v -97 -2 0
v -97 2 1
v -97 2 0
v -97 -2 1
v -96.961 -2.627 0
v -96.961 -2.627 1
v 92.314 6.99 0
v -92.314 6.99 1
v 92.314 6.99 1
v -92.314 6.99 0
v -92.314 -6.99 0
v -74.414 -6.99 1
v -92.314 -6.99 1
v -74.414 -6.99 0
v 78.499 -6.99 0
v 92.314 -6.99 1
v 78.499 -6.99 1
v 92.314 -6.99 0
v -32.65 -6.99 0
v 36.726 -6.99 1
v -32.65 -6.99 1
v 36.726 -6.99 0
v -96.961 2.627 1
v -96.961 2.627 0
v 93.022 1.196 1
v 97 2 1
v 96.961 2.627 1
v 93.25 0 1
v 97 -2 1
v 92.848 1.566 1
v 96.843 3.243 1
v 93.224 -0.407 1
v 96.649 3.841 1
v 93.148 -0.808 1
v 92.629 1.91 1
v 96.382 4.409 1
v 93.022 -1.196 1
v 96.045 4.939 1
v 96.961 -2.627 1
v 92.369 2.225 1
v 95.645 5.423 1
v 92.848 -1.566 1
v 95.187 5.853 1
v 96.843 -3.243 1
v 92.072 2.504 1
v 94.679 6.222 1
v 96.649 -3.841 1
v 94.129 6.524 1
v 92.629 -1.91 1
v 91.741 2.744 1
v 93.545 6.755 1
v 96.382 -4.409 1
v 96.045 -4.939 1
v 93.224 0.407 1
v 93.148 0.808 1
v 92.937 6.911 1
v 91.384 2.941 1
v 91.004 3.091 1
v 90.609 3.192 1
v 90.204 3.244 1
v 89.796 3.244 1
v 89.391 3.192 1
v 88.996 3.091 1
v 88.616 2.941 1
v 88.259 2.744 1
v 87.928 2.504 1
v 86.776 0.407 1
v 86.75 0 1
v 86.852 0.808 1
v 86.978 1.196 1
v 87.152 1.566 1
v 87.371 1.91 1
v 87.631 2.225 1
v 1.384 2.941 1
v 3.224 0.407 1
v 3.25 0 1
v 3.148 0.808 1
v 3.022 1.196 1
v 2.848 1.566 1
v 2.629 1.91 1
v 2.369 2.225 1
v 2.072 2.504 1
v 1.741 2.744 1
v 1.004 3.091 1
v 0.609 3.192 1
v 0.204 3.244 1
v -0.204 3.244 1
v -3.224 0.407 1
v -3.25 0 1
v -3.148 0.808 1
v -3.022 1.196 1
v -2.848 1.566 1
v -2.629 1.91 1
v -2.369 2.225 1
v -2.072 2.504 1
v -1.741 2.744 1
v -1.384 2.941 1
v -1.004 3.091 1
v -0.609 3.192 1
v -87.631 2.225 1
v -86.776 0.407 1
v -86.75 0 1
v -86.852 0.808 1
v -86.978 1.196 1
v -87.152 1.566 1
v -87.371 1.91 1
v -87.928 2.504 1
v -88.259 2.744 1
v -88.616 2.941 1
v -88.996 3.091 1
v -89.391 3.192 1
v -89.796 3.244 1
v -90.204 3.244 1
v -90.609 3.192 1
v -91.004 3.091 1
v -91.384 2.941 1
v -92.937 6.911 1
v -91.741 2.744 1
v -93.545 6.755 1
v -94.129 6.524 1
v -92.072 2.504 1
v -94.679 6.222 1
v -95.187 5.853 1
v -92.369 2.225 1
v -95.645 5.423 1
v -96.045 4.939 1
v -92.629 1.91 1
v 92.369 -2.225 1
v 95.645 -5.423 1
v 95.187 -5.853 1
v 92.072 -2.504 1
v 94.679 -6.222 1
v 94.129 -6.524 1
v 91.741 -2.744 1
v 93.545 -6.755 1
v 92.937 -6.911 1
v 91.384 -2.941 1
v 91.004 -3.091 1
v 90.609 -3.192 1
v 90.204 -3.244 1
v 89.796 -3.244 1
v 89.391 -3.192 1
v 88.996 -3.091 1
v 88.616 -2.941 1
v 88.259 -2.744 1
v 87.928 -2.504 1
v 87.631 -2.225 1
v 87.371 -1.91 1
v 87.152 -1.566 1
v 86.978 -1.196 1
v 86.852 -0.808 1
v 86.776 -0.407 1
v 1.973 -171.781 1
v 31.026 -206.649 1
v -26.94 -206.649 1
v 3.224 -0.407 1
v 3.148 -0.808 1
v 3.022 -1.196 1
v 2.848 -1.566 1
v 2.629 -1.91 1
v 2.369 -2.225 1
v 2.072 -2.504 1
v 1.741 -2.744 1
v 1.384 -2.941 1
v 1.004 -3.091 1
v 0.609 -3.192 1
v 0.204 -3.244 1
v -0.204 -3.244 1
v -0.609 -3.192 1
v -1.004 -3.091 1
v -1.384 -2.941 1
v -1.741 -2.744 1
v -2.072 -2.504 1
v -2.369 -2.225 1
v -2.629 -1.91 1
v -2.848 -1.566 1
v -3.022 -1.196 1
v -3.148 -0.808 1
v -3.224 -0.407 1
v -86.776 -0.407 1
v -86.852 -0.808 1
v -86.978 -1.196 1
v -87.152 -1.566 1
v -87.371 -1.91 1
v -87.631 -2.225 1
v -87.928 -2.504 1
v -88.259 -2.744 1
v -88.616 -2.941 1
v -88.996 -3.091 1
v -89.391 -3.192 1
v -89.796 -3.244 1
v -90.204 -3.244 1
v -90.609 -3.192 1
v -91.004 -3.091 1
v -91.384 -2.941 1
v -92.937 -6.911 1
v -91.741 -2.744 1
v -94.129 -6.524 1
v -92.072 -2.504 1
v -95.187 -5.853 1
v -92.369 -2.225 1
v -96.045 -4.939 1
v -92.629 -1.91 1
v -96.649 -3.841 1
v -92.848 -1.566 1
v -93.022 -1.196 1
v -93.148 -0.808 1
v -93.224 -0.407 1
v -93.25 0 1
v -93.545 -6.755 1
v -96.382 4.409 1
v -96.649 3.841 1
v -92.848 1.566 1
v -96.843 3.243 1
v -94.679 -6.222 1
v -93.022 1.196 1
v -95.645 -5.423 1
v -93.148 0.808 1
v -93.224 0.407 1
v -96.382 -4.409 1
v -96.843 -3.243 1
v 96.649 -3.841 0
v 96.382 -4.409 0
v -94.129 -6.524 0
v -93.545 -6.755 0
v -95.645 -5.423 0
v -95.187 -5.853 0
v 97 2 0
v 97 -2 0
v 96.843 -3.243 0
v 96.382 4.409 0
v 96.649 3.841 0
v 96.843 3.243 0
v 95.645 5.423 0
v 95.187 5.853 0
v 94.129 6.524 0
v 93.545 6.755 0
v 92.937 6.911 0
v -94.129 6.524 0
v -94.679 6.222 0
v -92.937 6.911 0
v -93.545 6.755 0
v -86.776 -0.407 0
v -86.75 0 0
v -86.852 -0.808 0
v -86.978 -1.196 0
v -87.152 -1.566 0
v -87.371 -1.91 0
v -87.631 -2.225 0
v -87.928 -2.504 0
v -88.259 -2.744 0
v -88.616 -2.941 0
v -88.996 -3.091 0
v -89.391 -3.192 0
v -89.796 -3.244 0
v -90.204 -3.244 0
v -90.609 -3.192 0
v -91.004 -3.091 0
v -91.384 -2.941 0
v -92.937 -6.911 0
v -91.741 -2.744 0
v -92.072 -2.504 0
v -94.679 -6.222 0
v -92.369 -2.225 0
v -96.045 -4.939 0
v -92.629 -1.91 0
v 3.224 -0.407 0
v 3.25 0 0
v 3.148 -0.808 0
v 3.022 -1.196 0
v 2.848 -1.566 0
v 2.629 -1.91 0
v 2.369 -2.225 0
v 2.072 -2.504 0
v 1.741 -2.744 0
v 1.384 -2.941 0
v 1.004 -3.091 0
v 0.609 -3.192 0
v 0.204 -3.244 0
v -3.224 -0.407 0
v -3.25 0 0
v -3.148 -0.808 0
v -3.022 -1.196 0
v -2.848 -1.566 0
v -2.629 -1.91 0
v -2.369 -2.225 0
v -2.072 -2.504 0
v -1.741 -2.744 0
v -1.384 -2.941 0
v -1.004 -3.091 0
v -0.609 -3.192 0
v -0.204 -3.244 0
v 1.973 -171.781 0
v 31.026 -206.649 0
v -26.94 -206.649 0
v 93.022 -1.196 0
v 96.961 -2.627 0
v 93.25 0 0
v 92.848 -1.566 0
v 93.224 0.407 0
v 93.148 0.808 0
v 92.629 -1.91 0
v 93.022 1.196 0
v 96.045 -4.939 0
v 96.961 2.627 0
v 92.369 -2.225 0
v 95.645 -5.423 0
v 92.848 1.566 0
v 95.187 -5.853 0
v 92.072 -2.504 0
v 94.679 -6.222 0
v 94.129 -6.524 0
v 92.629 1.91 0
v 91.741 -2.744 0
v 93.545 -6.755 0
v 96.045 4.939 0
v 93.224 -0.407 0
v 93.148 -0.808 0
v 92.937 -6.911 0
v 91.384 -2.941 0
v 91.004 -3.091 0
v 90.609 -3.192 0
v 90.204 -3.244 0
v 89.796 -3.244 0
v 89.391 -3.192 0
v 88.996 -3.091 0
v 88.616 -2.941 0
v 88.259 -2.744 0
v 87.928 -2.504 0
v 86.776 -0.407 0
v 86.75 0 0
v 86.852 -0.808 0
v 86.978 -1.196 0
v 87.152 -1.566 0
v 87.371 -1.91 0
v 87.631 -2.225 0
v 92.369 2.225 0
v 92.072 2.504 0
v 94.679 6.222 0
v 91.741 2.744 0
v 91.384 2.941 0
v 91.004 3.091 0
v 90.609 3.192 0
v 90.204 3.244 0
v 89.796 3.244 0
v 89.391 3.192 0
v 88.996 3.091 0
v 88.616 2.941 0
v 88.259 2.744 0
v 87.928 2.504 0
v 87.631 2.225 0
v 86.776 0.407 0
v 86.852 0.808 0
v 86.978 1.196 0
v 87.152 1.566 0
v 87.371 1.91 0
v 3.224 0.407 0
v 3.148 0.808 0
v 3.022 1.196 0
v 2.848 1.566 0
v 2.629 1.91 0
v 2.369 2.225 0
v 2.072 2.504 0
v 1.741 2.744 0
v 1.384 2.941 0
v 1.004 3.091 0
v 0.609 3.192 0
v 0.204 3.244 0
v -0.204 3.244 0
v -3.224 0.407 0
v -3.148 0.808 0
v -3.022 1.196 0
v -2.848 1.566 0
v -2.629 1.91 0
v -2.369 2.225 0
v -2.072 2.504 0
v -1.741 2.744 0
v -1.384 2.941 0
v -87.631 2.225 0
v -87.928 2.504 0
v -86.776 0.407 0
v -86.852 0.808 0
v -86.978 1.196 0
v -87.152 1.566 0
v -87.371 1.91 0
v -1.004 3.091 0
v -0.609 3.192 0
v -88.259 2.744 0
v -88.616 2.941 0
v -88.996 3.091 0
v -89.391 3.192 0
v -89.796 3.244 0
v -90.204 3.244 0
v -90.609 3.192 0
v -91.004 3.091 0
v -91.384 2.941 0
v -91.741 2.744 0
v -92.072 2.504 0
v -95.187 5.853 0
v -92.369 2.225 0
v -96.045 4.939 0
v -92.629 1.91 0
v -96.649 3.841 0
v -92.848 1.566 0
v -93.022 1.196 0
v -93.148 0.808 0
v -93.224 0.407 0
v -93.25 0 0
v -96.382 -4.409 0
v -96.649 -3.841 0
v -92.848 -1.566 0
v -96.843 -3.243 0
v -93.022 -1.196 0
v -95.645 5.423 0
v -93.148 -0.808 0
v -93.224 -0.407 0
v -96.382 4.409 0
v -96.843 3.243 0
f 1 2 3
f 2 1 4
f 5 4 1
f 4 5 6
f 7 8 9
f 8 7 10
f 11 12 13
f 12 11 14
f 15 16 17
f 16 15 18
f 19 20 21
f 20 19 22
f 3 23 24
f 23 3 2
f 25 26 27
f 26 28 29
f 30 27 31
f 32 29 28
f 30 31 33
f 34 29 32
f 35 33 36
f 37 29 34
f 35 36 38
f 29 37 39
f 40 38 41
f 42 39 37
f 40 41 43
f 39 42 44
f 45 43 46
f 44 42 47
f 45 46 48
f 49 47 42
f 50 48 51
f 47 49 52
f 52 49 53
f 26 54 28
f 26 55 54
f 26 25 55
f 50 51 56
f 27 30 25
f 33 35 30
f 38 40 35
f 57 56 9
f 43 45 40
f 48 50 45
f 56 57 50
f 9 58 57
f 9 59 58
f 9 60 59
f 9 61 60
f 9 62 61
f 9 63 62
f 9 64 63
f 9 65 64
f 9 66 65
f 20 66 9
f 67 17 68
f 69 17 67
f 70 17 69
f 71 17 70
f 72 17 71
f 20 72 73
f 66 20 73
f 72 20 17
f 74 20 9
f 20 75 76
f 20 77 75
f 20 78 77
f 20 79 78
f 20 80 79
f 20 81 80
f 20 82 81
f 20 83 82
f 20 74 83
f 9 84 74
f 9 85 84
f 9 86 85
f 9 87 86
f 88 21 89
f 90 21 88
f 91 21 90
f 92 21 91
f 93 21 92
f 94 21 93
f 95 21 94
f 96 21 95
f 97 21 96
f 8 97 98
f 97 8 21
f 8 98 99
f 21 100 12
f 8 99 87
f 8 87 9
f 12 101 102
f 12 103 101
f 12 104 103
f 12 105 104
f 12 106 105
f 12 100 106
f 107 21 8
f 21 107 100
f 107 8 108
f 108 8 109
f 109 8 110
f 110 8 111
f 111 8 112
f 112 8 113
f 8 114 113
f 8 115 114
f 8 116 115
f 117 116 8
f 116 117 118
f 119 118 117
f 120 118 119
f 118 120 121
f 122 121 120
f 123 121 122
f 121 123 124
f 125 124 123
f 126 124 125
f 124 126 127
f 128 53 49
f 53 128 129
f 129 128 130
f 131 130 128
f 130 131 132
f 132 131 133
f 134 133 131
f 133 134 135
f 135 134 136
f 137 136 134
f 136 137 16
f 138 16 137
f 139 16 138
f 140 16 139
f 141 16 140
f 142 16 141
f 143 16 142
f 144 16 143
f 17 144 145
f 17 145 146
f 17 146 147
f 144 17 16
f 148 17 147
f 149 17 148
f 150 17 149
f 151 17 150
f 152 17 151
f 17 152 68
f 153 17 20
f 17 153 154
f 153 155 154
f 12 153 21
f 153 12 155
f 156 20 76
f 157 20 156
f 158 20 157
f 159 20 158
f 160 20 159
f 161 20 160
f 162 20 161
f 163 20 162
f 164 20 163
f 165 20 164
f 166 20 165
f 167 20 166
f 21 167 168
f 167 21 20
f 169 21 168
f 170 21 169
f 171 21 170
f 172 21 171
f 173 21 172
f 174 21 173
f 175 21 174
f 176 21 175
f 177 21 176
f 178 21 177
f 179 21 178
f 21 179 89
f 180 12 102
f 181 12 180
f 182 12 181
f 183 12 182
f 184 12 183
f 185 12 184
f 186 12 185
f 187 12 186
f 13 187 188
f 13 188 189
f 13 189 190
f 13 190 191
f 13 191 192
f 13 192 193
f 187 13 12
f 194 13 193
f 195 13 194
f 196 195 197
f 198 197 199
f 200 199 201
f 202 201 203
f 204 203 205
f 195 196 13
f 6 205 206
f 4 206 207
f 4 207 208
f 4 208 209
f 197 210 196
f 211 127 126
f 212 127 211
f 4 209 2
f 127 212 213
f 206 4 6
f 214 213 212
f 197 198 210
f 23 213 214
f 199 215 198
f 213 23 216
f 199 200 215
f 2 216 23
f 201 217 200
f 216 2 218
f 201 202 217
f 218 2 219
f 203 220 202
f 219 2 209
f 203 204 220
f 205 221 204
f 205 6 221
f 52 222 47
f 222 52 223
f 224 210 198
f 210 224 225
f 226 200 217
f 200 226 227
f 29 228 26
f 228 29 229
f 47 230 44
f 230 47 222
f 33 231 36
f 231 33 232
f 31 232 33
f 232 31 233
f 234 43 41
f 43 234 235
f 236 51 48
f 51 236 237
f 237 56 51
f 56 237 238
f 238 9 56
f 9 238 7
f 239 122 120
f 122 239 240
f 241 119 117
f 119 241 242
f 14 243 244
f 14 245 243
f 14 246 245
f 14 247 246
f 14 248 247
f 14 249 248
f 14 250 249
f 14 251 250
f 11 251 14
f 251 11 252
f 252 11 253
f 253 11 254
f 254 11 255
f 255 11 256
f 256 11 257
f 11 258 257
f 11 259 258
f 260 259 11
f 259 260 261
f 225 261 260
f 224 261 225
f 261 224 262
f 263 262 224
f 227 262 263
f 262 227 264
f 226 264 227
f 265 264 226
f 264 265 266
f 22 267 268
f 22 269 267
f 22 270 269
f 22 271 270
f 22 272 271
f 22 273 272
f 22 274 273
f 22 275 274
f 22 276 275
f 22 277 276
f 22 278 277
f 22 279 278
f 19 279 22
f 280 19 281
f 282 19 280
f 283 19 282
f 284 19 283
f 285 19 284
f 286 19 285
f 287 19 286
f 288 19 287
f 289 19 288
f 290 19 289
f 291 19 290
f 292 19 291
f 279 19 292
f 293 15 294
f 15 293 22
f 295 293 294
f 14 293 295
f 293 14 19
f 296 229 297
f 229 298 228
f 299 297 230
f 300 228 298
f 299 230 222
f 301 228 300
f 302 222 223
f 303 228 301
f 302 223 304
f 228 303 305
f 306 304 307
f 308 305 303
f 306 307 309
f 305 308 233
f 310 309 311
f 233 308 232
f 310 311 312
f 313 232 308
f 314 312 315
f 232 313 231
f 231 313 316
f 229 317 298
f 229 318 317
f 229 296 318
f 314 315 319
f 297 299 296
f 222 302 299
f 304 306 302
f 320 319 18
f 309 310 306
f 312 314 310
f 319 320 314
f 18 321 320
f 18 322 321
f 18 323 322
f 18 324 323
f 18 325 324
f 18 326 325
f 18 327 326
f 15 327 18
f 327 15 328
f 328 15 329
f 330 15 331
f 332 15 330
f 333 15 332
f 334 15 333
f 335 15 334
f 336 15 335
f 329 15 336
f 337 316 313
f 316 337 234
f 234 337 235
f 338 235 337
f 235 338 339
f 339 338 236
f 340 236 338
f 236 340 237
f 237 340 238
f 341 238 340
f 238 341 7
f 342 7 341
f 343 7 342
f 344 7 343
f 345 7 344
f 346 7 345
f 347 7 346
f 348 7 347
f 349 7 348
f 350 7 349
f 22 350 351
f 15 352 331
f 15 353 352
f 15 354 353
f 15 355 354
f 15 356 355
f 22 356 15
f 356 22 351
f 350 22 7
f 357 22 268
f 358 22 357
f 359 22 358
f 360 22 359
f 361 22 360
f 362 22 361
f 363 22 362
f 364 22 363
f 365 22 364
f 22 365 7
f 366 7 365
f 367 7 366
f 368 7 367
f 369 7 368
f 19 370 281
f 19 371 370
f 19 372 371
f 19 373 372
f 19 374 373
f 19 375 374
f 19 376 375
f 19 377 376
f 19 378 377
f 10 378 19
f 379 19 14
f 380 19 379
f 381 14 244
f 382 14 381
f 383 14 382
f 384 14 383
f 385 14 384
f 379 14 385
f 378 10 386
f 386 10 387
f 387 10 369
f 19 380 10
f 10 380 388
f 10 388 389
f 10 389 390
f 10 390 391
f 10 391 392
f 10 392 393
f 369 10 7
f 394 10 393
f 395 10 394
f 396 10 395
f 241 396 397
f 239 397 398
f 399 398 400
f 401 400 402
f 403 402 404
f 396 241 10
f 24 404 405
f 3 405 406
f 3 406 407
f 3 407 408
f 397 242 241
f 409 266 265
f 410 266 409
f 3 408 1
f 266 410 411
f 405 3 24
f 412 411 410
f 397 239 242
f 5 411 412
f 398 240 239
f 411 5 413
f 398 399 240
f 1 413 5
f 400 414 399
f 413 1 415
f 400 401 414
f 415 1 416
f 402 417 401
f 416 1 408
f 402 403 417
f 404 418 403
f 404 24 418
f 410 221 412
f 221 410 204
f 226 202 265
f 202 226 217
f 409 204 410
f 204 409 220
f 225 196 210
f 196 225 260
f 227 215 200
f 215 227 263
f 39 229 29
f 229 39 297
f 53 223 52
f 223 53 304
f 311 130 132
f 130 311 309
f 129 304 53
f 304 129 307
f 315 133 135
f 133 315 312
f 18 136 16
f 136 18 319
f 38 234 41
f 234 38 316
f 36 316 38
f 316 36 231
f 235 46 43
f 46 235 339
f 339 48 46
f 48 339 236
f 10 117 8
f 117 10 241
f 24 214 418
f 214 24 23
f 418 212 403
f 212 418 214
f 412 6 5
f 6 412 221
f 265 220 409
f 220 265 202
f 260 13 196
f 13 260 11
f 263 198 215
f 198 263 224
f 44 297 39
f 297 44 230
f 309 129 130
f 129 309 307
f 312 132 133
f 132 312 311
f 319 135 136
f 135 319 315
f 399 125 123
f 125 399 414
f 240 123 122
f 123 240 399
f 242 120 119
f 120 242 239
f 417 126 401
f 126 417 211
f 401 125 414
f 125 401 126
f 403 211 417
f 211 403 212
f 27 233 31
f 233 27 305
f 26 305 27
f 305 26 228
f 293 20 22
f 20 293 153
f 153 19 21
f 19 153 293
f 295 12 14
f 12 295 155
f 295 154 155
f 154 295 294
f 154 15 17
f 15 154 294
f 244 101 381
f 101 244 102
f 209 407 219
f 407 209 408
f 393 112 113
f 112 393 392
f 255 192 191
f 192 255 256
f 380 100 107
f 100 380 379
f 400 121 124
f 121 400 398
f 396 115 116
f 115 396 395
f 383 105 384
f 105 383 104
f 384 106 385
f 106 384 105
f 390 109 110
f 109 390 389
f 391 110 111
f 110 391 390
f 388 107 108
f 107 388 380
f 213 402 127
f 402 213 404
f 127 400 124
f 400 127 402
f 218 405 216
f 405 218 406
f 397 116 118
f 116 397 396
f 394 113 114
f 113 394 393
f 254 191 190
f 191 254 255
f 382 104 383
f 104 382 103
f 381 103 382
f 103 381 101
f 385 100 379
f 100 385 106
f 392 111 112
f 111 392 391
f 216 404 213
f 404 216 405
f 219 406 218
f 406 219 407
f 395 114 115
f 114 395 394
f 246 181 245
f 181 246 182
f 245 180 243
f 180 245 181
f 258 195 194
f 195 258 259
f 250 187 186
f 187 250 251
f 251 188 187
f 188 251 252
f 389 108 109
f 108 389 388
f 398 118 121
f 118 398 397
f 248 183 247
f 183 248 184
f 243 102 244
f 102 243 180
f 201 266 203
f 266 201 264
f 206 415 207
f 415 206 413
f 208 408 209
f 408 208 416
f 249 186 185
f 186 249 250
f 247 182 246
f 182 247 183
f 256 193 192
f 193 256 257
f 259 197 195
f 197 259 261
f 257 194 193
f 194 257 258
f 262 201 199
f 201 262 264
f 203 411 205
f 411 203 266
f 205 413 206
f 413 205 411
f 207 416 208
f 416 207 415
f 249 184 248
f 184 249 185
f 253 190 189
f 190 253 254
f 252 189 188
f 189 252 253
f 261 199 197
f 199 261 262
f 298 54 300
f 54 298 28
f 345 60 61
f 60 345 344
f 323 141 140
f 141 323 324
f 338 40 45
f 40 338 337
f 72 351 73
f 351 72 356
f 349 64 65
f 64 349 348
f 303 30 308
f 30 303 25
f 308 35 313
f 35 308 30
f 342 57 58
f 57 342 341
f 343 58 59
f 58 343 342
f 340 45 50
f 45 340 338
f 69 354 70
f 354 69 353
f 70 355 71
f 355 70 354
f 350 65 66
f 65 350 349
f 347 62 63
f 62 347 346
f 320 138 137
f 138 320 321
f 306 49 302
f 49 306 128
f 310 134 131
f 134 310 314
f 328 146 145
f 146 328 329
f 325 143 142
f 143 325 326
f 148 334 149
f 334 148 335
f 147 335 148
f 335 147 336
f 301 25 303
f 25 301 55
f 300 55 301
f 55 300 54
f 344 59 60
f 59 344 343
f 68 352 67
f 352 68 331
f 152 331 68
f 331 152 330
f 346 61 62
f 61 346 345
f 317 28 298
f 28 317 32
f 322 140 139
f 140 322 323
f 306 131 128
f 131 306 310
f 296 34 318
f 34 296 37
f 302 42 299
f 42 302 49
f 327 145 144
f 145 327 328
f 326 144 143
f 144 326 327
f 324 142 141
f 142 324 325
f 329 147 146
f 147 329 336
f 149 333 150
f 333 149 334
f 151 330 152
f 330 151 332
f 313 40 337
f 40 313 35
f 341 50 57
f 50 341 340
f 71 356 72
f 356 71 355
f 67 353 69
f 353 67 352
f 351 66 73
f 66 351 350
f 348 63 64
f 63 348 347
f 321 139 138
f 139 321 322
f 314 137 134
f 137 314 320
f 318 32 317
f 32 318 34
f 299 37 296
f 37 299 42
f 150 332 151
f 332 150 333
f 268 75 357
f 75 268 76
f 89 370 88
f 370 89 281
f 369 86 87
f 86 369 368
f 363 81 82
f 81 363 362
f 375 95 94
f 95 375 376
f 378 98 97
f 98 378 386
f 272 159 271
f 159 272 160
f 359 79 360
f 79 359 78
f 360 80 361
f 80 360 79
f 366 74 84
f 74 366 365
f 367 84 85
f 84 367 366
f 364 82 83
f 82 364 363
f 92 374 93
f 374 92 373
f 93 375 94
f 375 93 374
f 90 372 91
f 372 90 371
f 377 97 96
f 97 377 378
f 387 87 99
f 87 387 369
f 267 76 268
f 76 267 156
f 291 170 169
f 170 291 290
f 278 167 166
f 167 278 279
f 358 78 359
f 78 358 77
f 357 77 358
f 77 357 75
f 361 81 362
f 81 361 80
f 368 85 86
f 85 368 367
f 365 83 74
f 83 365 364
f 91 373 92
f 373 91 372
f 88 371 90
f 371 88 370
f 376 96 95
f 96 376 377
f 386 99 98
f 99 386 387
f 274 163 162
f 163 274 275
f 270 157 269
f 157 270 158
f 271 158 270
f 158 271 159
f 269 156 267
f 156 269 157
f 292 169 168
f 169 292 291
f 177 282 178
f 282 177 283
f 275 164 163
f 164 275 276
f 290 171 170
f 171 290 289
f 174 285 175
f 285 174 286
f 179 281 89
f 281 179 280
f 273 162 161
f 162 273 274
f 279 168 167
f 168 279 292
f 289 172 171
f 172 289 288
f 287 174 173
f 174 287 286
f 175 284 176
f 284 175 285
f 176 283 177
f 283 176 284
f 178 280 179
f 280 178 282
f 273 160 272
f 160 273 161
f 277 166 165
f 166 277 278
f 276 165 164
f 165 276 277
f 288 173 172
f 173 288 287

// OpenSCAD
$fn = 50;


difference() {
	union() {
		translate(v = [0, 0, 0]) {
			rotate(a = [0, 0, 0]) {
				hull() {
					translate(v = [-92.0000000000, 2.0000000000, 0]) {
						rotate(a = [0, 0, 0]) {
							translate(v = [0, 0, 0]) {
								rotate(a = [0, 0, 0]) {
									cylinder(h = 1, r = 5);
								}
							}
						}
					}
					translate(v = [92.0000000000, 2.0000000000, 0]) {
						rotate(a = [0, 0, 0]) {
							translate(v = [0, 0, 0]) {
								rotate(a = [0, 0, 0]) {
									cylinder(h = 1, r = 5);
								}
							}
						}
					}
					translate(v = [-92.0000000000, -2.0000000000, 0]) {
						rotate(a = [0, 0, 0]) {
							translate(v = [0, 0, 0]) {
								rotate(a = [0, 0, 0]) {
									cylinder(h = 1, r = 5);
								}
							}
						}
					}
					translate(v = [92.0000000000, -2.0000000000, 0]) {
						rotate(a = [0, 0, 0]) {
							translate(v = [0, 0, 0]) {
								rotate(a = [0, 0, 0]) {
									cylinder(h = 1, r = 5);
								}
							}
						}
					}
				}
			}
		}
		translate(v = [0, 0, 0]) {
			rotate(a = [0, 0, 0]) {
				linear_extrude(height = 1) {
					text(font = "DejaVu Sans Mono:style=Bold", halign = "center", size = 209.0000000000, text = "V", valign = "top");
				}
			}
		}
	}
	union() {
		translate(v = [-90.0000000000, 0.0000000000, -125.0000000000]) {
			rotate(a = [0, 0, 0]) {
				cylinder(h = 250, r = 3.2500000000);
			}
		}
		translate(v = [90.0000000000, 0.0000000000, -125.0000000000]) {
			rotate(a = [0, 0, 0]) {
				cylinder(h = 250, r = 3.2500000000);
			}
		}
		translate(v = [90.0000000000, 0.0000000000, -125.0000000000]) {
			rotate(a = [0, 0, 0]) {
				cylinder(h = 250, r = 3.2500000000);
			}
		}
		translate(v = [0, 0, -125.0000000000]) {
			rotate(a = [0, 0, 0]) {
				cylinder(h = 250, r = 3.2500000000);
			}
		}
	}
}
